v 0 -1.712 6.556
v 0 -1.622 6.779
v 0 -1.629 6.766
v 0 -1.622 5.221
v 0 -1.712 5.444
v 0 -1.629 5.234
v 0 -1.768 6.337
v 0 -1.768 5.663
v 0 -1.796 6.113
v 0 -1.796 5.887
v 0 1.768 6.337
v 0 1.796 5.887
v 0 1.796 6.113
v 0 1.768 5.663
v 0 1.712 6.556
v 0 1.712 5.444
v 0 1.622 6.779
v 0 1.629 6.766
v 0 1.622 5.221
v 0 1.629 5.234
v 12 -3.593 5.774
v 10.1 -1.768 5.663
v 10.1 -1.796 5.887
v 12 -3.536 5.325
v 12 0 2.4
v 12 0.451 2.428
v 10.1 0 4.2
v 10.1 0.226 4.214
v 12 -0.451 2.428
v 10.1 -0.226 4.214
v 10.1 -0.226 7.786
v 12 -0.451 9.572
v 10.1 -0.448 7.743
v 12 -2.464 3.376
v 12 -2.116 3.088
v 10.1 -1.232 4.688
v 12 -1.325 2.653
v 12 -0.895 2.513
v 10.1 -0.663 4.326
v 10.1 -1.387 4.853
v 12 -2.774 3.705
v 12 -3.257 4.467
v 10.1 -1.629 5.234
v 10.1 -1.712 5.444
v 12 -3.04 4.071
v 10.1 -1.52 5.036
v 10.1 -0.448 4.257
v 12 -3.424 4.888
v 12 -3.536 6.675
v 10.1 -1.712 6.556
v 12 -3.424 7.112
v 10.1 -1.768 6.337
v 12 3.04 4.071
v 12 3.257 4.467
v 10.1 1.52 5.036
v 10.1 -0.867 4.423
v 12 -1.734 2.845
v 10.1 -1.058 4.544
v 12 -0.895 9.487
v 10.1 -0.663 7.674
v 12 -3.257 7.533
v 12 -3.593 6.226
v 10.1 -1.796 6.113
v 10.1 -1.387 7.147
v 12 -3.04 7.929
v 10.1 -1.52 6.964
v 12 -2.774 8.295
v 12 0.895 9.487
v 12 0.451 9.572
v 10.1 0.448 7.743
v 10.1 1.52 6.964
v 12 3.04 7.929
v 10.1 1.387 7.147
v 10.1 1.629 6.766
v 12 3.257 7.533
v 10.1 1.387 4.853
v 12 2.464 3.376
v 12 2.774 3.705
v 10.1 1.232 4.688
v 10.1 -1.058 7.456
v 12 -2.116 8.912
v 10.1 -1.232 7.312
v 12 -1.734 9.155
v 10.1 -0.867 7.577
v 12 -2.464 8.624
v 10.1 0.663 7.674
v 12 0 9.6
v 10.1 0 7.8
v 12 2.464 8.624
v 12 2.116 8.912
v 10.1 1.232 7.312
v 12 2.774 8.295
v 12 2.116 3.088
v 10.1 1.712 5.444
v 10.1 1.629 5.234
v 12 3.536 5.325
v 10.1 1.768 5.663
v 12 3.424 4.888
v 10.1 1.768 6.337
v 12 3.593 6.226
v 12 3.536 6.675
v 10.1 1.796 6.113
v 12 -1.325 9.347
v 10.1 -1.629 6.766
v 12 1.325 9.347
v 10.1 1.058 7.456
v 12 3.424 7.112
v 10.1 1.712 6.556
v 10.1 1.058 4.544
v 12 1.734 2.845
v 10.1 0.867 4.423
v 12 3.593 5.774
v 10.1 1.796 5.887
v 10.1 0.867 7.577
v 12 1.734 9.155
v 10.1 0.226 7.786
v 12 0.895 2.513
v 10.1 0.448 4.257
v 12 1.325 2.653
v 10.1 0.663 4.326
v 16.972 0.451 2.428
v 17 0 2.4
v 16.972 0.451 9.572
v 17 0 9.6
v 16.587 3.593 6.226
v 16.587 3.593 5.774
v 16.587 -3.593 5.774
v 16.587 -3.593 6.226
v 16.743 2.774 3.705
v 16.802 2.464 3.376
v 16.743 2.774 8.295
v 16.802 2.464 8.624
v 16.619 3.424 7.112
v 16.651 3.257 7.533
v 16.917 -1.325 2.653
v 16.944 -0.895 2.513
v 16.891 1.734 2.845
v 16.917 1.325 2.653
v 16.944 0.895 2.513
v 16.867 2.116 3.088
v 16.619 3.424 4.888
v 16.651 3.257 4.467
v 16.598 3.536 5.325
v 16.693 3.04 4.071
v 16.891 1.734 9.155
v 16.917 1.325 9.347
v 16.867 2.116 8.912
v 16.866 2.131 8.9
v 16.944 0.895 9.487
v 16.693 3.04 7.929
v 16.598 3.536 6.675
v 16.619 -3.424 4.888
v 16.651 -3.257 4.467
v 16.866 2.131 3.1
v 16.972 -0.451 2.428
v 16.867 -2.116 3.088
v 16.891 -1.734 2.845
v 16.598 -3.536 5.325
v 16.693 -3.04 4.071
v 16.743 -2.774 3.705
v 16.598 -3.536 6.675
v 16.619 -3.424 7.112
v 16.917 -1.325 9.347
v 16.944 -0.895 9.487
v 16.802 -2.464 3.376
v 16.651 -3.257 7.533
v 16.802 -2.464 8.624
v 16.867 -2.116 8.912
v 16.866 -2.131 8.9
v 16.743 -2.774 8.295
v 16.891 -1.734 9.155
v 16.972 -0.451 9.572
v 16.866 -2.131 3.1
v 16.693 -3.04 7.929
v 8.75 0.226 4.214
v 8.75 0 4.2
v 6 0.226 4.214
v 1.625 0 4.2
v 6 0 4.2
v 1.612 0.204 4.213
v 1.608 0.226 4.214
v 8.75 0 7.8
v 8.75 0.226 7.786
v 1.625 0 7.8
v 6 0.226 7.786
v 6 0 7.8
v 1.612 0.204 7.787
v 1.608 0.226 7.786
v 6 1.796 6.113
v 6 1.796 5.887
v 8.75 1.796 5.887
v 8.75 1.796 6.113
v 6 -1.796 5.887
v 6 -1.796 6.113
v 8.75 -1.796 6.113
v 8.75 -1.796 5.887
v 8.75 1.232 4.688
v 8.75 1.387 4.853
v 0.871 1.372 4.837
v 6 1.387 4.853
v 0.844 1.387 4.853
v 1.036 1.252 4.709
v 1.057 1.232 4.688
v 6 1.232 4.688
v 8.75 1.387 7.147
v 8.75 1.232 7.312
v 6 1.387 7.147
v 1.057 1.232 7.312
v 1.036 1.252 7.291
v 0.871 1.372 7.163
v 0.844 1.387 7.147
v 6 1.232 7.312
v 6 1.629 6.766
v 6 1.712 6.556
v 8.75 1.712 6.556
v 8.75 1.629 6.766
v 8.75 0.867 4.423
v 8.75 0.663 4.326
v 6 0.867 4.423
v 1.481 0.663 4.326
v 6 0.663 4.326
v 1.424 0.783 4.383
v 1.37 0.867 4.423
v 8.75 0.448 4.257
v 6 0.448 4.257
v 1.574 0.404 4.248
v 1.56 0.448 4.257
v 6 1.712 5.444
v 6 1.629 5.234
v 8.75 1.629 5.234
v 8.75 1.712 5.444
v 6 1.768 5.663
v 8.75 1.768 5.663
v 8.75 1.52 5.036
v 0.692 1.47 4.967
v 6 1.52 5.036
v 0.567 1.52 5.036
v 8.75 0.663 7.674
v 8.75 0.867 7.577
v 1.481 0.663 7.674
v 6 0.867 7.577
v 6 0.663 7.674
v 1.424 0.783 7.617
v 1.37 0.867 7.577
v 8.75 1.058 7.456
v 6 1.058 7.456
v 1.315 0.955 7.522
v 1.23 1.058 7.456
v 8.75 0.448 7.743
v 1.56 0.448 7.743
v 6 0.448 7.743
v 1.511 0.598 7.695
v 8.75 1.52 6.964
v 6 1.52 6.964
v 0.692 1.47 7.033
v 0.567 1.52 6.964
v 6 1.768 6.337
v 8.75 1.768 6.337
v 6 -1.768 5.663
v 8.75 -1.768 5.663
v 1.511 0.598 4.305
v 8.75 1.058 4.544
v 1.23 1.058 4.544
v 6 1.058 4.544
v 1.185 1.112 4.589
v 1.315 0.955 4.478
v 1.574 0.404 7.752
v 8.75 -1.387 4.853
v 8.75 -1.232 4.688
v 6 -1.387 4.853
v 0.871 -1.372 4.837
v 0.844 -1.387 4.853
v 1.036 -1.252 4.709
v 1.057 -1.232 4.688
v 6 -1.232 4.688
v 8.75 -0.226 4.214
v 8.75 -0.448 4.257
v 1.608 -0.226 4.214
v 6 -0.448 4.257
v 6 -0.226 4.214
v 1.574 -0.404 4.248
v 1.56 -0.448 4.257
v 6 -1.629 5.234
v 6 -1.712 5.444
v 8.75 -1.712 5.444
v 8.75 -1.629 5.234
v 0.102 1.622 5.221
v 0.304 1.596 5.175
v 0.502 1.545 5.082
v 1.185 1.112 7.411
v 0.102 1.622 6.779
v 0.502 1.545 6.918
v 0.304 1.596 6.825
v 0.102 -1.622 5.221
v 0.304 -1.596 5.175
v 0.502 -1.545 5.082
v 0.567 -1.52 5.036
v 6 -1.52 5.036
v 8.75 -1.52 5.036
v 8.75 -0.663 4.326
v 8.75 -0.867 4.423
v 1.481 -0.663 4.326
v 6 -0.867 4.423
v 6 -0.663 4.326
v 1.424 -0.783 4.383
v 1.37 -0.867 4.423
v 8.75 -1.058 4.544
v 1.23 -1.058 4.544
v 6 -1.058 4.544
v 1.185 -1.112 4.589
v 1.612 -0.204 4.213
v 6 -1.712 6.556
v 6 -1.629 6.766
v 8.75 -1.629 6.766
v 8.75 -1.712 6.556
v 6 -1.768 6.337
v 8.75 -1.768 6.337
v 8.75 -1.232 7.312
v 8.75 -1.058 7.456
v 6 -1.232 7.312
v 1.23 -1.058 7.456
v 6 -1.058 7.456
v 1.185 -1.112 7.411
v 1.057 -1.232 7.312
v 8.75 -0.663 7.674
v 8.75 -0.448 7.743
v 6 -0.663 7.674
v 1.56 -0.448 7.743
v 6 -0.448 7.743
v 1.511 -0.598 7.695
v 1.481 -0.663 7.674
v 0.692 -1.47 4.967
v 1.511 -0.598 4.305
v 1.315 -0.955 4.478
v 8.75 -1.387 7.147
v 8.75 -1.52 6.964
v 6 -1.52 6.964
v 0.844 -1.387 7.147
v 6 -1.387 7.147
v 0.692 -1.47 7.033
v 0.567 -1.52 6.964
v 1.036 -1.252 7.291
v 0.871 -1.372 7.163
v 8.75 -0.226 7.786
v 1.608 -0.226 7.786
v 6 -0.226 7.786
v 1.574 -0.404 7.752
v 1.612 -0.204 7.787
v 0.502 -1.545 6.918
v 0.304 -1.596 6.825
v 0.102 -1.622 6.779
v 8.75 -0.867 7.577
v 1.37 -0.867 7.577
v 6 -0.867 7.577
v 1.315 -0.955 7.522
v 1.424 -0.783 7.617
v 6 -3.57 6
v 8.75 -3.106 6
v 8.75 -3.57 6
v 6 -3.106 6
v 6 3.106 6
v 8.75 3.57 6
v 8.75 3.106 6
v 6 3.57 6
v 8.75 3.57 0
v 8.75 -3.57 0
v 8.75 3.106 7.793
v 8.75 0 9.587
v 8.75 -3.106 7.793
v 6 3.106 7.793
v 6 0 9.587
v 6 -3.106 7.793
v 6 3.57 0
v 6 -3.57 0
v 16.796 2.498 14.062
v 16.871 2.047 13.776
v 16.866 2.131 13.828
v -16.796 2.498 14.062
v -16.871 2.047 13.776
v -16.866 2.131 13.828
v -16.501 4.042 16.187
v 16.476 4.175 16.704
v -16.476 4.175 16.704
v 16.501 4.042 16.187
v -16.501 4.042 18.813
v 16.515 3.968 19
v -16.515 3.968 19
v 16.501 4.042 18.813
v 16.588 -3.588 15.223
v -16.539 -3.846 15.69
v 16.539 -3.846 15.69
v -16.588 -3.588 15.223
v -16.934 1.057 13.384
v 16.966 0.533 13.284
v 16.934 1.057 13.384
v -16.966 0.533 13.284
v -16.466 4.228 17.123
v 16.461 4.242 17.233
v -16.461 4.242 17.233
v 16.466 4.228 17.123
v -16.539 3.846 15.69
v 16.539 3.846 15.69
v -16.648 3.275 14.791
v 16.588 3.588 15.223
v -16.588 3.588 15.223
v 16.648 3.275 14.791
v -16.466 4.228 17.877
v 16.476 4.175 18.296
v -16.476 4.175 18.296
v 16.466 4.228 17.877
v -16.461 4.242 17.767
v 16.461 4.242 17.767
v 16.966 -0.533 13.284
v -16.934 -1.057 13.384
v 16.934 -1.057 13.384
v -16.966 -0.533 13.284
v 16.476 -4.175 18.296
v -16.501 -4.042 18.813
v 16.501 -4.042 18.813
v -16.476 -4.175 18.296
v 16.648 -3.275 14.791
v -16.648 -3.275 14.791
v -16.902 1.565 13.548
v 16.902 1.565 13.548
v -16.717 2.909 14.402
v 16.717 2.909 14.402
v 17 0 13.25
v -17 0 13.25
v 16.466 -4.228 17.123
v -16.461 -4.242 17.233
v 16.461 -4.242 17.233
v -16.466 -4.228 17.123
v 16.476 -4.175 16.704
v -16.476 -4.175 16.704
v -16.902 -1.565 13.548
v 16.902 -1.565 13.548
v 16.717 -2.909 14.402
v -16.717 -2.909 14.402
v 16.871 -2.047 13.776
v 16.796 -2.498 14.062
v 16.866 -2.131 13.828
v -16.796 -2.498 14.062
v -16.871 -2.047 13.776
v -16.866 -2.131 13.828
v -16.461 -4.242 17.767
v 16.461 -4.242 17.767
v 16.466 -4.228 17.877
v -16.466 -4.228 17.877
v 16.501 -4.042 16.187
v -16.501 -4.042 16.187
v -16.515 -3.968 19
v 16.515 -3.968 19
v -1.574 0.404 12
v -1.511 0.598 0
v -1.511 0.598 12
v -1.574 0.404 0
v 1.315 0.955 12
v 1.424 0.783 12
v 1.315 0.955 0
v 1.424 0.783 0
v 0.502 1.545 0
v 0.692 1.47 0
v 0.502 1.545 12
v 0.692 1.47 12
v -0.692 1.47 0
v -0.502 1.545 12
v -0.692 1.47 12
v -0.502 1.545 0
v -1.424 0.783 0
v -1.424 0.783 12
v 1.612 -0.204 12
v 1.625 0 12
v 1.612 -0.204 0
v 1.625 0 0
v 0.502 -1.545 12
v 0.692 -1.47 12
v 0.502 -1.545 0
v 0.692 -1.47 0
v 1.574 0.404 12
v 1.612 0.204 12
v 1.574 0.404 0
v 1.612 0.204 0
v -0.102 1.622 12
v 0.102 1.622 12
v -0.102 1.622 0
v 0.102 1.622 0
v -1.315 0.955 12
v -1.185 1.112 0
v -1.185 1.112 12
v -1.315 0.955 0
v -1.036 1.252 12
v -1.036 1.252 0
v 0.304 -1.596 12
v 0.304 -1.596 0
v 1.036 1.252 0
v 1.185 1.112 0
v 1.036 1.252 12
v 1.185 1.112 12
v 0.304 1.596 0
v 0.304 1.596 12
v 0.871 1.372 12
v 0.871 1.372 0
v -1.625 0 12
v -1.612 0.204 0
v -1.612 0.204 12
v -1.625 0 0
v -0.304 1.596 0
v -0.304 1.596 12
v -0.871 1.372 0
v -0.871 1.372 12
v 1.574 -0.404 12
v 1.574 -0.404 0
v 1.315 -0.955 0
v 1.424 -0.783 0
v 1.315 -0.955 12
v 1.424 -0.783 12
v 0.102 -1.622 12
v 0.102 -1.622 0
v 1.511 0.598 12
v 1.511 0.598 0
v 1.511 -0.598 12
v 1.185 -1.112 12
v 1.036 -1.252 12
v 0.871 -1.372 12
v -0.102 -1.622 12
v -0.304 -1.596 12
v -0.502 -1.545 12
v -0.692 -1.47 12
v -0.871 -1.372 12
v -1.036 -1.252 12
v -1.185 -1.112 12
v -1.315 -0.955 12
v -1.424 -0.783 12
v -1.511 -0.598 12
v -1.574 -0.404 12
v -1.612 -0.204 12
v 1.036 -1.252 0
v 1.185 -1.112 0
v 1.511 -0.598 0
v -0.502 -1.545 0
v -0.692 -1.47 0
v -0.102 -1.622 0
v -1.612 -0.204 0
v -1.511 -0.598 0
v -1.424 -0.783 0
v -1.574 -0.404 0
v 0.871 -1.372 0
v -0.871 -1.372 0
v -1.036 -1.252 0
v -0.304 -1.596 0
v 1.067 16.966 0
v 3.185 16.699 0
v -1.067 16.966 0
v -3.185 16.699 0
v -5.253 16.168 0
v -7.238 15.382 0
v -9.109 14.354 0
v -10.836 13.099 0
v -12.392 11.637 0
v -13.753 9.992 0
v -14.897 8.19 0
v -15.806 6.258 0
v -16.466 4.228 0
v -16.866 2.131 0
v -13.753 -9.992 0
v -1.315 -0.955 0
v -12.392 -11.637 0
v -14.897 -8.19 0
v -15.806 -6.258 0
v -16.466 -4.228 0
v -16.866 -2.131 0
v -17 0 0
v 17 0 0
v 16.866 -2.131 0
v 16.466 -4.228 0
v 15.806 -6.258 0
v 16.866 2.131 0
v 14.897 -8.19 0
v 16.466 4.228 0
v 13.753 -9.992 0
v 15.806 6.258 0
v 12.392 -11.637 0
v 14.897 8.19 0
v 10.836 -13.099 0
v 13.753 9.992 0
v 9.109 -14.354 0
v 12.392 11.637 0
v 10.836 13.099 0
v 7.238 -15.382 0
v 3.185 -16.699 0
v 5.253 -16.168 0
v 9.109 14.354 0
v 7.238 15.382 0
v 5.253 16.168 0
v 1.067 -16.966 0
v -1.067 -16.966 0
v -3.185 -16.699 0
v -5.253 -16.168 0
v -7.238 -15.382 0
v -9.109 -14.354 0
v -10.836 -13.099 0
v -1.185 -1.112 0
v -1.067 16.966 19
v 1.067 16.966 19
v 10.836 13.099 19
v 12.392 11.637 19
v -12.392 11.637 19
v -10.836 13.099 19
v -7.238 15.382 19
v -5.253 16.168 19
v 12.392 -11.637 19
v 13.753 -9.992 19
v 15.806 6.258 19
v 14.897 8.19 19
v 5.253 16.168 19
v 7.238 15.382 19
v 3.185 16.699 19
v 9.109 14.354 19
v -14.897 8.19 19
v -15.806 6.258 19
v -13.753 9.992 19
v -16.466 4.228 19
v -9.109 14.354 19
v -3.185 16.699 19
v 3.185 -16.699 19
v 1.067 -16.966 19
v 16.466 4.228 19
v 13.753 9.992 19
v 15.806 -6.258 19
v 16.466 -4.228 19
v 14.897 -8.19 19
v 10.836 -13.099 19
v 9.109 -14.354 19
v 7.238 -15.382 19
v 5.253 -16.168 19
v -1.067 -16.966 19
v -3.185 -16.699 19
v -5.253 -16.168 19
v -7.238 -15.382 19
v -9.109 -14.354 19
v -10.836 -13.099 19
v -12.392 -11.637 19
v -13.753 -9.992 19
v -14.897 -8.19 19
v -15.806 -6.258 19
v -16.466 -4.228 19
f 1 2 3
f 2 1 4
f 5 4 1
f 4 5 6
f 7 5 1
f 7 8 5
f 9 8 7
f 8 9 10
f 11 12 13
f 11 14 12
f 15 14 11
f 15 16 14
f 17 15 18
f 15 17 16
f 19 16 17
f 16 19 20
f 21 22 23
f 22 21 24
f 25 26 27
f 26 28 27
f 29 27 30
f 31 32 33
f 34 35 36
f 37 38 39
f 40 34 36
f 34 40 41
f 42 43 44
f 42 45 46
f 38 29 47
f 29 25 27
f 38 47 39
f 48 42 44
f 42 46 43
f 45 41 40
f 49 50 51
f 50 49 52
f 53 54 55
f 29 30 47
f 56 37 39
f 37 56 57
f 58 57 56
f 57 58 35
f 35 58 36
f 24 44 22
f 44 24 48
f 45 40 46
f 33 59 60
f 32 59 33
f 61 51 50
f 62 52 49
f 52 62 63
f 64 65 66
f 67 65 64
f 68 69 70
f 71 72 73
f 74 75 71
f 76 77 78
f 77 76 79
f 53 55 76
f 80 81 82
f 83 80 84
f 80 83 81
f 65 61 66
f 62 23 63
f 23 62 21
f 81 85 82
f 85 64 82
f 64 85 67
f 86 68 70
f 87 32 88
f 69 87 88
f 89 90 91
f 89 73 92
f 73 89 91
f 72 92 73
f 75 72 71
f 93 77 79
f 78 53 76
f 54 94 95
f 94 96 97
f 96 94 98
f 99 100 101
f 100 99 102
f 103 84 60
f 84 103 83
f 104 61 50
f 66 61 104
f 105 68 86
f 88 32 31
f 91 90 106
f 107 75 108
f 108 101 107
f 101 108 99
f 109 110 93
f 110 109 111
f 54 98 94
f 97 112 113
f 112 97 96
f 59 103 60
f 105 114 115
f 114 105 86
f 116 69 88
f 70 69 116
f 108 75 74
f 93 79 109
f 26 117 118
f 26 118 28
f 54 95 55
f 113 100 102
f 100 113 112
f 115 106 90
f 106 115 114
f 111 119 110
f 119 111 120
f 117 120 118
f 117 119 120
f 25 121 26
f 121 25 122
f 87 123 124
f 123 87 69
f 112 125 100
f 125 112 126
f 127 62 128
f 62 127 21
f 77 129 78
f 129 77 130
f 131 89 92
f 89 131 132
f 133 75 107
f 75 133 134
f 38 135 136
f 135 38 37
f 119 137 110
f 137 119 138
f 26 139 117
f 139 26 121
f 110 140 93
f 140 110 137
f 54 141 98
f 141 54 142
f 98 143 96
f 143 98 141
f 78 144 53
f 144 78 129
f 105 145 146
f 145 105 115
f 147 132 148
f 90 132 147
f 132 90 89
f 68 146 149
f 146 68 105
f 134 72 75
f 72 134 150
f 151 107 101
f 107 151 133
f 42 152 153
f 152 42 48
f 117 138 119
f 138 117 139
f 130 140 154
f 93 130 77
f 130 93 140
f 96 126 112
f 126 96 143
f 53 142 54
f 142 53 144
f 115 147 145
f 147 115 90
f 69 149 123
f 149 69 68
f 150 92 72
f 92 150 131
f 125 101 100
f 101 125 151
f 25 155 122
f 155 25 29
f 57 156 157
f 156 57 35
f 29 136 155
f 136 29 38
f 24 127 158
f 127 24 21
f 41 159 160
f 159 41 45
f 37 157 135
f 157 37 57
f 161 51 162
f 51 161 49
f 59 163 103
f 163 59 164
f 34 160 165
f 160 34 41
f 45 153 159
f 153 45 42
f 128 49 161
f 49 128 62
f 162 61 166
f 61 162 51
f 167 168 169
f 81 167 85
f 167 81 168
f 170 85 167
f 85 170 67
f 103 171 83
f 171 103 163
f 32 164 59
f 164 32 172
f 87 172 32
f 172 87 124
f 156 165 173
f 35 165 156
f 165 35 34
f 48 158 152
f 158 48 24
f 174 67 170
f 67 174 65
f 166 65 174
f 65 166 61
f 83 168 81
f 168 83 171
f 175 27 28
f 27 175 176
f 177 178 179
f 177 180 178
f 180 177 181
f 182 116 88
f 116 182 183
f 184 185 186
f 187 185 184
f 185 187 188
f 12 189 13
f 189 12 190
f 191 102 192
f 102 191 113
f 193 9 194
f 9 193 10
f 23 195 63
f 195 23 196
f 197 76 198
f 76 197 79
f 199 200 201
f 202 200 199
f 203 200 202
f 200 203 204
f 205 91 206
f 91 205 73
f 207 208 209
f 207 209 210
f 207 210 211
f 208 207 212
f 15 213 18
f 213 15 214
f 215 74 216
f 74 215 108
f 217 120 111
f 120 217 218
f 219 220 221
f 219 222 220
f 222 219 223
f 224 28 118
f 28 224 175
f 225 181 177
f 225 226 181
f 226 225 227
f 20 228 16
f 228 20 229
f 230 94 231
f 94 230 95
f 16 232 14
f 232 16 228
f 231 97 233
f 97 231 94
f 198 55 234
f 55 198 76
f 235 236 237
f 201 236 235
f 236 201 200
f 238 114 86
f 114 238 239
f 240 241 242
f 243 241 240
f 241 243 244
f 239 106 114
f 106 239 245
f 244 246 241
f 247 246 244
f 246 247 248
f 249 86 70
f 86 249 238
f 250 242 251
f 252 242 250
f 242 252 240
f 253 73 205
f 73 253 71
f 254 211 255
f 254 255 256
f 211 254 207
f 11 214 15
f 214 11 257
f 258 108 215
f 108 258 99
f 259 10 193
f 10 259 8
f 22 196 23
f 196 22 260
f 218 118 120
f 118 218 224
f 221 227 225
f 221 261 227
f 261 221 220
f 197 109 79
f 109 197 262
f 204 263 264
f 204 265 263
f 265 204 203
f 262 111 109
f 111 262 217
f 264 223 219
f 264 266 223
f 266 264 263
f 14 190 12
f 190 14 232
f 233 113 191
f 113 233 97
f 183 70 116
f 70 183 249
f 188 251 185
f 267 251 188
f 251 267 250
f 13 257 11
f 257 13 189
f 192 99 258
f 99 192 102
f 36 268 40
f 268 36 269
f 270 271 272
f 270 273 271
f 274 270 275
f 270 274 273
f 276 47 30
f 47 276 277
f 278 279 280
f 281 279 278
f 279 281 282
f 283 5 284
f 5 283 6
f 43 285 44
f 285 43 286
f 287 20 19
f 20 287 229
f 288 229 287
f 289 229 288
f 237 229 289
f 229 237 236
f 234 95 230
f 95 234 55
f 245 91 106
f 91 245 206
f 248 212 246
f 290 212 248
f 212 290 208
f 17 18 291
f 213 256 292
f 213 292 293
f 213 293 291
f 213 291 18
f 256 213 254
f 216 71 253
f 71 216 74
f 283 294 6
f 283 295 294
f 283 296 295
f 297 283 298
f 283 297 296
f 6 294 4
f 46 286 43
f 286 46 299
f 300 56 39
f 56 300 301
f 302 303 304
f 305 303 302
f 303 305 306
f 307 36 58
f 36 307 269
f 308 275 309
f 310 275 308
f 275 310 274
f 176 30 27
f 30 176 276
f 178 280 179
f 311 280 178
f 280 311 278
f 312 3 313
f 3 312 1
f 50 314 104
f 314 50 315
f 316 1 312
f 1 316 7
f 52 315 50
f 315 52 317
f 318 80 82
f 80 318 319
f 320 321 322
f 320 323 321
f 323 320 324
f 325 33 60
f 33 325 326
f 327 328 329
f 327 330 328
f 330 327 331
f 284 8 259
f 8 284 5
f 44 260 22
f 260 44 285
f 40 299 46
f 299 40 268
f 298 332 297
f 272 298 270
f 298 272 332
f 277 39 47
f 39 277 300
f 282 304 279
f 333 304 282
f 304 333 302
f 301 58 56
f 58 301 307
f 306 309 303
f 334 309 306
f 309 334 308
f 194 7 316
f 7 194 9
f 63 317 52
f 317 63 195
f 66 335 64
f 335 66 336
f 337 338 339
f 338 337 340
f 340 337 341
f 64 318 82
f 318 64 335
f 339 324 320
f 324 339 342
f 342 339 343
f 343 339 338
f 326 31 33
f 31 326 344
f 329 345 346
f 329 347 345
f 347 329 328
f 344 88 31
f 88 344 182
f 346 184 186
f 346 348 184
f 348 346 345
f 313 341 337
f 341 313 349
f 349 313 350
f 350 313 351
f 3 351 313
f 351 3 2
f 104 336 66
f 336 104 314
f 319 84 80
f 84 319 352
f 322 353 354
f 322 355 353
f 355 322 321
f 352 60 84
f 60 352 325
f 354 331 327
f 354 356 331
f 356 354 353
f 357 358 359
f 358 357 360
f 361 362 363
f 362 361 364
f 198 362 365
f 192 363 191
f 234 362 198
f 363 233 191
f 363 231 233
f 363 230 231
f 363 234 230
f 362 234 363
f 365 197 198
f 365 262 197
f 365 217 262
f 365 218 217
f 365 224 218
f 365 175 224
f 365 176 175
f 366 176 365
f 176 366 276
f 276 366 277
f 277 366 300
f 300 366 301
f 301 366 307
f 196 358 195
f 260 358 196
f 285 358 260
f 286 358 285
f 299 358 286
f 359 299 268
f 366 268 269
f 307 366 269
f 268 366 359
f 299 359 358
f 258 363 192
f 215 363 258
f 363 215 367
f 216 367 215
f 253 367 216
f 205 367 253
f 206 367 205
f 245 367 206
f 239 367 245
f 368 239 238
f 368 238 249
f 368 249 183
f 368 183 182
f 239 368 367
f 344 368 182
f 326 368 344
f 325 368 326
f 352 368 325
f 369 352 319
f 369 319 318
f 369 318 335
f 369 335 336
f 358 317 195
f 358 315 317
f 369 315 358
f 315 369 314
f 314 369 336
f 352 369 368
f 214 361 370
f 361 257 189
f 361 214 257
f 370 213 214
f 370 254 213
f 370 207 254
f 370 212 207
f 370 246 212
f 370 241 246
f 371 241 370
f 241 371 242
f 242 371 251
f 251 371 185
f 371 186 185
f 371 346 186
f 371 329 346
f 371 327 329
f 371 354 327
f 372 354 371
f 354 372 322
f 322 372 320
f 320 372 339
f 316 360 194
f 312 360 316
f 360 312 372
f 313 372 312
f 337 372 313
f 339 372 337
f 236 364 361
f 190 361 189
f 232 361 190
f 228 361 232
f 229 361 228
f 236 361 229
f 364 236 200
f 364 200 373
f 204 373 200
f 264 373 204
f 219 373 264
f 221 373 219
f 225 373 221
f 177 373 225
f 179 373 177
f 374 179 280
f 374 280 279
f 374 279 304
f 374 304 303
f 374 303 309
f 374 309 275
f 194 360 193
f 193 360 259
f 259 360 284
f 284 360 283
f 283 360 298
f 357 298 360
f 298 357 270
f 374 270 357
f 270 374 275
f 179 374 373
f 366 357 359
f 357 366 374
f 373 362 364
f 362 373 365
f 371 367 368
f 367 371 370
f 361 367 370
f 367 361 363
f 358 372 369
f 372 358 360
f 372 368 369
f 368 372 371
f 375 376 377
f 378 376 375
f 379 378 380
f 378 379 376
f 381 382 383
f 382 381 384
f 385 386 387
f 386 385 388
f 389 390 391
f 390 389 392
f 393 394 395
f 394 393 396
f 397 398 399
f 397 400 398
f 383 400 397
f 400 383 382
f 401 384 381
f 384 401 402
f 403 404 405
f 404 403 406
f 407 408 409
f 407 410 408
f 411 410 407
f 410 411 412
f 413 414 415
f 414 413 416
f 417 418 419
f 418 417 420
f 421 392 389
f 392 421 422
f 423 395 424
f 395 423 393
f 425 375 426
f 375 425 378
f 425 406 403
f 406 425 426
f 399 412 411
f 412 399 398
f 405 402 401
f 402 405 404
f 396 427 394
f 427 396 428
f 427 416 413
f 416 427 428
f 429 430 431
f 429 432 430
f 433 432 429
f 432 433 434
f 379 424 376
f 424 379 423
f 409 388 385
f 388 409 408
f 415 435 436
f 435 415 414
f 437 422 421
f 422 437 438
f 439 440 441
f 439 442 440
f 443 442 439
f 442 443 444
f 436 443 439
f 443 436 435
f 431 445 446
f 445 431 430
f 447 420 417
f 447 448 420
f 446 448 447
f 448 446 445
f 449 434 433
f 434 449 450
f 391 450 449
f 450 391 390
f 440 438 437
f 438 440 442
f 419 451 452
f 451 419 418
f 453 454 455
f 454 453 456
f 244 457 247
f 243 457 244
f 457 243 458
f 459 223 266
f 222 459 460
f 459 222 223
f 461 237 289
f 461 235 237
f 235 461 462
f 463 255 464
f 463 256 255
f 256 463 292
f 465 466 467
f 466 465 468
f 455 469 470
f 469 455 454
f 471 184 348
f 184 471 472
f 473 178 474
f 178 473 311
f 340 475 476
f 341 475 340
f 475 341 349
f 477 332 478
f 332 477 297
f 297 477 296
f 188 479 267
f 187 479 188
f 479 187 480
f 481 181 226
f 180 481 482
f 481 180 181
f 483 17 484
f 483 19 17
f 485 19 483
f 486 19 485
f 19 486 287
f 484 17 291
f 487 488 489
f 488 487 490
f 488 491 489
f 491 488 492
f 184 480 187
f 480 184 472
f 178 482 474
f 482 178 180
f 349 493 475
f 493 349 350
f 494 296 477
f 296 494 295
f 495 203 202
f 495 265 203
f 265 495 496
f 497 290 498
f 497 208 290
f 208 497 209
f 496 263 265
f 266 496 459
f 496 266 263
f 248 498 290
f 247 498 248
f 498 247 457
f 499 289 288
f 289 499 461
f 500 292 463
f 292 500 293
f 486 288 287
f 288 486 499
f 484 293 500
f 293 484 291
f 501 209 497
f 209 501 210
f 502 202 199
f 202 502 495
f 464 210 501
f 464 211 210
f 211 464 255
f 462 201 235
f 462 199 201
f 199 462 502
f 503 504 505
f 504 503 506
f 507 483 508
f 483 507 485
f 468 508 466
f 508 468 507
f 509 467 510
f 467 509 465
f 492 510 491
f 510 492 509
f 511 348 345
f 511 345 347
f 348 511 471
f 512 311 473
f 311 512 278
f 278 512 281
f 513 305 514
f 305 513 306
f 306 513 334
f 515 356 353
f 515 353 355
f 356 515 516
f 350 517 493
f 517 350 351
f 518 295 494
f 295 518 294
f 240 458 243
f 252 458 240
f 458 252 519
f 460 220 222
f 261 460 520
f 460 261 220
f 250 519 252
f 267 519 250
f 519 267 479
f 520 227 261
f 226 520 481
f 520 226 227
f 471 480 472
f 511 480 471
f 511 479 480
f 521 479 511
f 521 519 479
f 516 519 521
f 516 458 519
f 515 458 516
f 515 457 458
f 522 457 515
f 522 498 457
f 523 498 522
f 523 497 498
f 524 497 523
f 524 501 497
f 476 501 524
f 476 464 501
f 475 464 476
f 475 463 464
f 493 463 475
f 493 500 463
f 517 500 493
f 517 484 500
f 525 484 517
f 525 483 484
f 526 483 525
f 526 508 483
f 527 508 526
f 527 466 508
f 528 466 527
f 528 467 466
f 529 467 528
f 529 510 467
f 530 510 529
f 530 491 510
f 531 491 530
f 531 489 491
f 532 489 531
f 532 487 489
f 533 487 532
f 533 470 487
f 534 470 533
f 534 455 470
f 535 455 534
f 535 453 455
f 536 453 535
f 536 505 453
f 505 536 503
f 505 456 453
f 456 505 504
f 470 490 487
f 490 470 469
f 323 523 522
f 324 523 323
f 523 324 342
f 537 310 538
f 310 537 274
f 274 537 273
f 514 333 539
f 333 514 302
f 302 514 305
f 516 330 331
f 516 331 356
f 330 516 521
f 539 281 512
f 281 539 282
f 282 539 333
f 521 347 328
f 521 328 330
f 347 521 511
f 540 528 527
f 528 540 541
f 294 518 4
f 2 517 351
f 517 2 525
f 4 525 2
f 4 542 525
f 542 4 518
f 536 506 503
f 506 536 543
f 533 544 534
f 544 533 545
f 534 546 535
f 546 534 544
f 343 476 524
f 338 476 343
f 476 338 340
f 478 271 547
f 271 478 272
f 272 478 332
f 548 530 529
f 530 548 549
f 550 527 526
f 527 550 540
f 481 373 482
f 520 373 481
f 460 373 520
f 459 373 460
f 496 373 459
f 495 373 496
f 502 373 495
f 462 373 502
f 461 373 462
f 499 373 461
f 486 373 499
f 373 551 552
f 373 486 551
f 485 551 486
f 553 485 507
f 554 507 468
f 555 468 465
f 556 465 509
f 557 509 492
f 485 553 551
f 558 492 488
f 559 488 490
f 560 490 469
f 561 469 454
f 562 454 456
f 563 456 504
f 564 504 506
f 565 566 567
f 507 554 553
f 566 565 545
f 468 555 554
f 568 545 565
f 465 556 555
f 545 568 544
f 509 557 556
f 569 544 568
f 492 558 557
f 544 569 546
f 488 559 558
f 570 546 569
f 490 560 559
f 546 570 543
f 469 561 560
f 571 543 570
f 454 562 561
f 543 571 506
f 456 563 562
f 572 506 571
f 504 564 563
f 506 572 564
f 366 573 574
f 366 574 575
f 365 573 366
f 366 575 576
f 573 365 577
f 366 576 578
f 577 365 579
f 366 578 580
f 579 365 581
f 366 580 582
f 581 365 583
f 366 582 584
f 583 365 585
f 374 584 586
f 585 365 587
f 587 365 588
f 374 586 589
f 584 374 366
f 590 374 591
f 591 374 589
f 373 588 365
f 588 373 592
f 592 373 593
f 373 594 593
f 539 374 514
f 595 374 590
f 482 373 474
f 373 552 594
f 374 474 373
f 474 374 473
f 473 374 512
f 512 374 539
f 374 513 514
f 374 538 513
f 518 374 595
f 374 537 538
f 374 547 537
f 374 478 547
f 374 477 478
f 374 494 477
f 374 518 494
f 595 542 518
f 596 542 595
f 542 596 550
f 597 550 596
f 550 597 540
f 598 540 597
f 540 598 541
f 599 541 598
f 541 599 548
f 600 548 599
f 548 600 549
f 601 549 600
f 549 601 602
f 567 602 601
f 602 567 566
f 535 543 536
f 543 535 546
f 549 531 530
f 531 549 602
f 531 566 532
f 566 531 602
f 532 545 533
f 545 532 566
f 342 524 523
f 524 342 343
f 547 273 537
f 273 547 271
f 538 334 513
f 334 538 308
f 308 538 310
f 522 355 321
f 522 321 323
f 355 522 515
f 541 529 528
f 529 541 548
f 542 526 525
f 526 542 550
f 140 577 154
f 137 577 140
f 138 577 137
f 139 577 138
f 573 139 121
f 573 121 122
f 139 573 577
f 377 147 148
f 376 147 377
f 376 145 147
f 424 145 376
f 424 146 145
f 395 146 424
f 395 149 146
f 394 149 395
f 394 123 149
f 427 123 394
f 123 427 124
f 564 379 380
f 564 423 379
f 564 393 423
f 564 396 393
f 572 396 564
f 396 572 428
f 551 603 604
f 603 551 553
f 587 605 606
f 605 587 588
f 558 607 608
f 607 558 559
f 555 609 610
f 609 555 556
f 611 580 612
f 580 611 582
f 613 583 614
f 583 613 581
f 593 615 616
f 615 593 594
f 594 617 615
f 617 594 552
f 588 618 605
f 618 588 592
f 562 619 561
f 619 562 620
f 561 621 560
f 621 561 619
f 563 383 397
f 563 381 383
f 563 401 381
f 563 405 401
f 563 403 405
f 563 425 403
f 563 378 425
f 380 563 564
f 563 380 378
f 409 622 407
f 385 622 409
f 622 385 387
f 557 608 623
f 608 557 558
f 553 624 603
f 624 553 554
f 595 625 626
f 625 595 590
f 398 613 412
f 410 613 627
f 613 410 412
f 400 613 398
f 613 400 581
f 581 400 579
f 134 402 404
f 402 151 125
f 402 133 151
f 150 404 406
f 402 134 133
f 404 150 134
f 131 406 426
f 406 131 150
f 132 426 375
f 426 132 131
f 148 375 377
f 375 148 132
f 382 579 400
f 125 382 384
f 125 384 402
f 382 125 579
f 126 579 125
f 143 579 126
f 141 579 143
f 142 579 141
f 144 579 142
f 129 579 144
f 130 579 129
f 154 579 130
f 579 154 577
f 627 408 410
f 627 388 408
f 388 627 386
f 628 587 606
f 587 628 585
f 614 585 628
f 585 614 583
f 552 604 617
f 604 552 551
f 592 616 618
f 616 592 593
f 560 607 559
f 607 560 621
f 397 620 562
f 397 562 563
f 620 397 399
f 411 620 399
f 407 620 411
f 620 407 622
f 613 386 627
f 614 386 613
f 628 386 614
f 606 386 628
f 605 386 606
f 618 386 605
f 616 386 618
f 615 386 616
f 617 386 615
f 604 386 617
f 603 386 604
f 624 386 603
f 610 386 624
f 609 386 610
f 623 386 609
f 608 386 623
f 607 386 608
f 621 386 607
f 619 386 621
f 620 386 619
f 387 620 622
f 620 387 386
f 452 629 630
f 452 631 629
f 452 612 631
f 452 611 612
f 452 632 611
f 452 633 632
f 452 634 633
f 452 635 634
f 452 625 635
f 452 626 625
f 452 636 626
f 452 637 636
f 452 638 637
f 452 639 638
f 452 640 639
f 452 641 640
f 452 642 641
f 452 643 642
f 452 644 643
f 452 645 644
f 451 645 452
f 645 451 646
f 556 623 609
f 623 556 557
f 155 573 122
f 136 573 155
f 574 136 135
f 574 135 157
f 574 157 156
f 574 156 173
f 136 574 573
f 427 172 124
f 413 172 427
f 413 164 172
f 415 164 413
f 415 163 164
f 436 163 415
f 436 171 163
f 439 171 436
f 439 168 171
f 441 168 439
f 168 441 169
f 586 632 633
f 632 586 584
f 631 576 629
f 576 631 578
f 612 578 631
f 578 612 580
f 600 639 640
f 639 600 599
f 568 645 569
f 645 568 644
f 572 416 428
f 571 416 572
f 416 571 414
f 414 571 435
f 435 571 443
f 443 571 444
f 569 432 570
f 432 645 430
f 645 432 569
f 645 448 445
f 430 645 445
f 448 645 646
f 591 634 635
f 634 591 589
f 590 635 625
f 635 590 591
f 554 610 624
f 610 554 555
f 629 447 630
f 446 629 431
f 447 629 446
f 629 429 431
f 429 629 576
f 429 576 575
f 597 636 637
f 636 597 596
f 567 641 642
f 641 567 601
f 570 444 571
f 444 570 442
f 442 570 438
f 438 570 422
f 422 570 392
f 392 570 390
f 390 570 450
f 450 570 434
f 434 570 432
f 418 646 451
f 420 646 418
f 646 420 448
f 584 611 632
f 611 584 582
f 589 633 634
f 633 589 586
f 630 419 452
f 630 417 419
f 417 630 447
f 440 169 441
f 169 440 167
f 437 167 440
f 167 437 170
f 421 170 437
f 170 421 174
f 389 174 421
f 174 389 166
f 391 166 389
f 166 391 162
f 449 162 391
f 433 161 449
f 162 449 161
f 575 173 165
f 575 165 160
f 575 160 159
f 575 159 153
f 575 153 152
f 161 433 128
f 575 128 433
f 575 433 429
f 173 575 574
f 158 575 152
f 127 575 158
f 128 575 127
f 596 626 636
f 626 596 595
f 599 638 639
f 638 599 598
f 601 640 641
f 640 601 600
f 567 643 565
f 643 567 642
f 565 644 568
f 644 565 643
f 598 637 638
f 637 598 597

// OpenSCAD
$fn = 50;


difference() {
	union() {
		cylinder(h = 19, r = 17.0000000000);
	}
	union() {
		translate(v = [12, 0, 6.0000000000]) {
			rotate(a = [0, 90, 0]) {
				difference() {
					union() {
						translate(v = [0, 0, -12.0000000000]) {
							cylinder(h = 12, r = 1.5000000000);
						}
						translate(v = [0, 0, -1.9000000000]) {
							cylinder(h = 1.9000000000, r1 = 1.8000000000, r2 = 3.6000000000);
						}
						cylinder(h = 250, r = 3.6000000000);
						translate(v = [0, 0, -12.0000000000]) {
							cylinder(h = 12, r = 1.8000000000);
						}
						translate(v = [0, 0, -12.0000000000]) {
							cylinder(h = 12, r = 1.5000000000);
						}
					}
					union();
				}
			}
		}
		translate(v = [6.0000000000, 0, 6.0000000000]) {
			rotate(a = [0, 90, 0]) {
				difference() {
					union() {
						translate(v = [0.0000000000, -3.5702500000, 0]) {
							cube(size = [20, 7.1405000000, 2.7500000000]);
						}
						linear_extrude(height = 2.7500000000) {
							polygon(points = [[3.5870000000, 0.0000000000], [1.7935000000, 3.1064331234], [-1.7935000000, 3.1064331234], [-3.5870000000, 0.0000000000], [-1.7935000000, -3.1064331234], [1.7935000000, -3.1064331234]]);
						}
					}
					union();
				}
			}
		}
		translate(v = [-100.0000000000, 0, 17.5000000000]) {
			rotate(a = [0, 90, 0]) {
				cylinder(h = 200, r = 4.2500000000);
			}
		}
		cylinder(h = 12, r = 1.6250000000);
	}
}
